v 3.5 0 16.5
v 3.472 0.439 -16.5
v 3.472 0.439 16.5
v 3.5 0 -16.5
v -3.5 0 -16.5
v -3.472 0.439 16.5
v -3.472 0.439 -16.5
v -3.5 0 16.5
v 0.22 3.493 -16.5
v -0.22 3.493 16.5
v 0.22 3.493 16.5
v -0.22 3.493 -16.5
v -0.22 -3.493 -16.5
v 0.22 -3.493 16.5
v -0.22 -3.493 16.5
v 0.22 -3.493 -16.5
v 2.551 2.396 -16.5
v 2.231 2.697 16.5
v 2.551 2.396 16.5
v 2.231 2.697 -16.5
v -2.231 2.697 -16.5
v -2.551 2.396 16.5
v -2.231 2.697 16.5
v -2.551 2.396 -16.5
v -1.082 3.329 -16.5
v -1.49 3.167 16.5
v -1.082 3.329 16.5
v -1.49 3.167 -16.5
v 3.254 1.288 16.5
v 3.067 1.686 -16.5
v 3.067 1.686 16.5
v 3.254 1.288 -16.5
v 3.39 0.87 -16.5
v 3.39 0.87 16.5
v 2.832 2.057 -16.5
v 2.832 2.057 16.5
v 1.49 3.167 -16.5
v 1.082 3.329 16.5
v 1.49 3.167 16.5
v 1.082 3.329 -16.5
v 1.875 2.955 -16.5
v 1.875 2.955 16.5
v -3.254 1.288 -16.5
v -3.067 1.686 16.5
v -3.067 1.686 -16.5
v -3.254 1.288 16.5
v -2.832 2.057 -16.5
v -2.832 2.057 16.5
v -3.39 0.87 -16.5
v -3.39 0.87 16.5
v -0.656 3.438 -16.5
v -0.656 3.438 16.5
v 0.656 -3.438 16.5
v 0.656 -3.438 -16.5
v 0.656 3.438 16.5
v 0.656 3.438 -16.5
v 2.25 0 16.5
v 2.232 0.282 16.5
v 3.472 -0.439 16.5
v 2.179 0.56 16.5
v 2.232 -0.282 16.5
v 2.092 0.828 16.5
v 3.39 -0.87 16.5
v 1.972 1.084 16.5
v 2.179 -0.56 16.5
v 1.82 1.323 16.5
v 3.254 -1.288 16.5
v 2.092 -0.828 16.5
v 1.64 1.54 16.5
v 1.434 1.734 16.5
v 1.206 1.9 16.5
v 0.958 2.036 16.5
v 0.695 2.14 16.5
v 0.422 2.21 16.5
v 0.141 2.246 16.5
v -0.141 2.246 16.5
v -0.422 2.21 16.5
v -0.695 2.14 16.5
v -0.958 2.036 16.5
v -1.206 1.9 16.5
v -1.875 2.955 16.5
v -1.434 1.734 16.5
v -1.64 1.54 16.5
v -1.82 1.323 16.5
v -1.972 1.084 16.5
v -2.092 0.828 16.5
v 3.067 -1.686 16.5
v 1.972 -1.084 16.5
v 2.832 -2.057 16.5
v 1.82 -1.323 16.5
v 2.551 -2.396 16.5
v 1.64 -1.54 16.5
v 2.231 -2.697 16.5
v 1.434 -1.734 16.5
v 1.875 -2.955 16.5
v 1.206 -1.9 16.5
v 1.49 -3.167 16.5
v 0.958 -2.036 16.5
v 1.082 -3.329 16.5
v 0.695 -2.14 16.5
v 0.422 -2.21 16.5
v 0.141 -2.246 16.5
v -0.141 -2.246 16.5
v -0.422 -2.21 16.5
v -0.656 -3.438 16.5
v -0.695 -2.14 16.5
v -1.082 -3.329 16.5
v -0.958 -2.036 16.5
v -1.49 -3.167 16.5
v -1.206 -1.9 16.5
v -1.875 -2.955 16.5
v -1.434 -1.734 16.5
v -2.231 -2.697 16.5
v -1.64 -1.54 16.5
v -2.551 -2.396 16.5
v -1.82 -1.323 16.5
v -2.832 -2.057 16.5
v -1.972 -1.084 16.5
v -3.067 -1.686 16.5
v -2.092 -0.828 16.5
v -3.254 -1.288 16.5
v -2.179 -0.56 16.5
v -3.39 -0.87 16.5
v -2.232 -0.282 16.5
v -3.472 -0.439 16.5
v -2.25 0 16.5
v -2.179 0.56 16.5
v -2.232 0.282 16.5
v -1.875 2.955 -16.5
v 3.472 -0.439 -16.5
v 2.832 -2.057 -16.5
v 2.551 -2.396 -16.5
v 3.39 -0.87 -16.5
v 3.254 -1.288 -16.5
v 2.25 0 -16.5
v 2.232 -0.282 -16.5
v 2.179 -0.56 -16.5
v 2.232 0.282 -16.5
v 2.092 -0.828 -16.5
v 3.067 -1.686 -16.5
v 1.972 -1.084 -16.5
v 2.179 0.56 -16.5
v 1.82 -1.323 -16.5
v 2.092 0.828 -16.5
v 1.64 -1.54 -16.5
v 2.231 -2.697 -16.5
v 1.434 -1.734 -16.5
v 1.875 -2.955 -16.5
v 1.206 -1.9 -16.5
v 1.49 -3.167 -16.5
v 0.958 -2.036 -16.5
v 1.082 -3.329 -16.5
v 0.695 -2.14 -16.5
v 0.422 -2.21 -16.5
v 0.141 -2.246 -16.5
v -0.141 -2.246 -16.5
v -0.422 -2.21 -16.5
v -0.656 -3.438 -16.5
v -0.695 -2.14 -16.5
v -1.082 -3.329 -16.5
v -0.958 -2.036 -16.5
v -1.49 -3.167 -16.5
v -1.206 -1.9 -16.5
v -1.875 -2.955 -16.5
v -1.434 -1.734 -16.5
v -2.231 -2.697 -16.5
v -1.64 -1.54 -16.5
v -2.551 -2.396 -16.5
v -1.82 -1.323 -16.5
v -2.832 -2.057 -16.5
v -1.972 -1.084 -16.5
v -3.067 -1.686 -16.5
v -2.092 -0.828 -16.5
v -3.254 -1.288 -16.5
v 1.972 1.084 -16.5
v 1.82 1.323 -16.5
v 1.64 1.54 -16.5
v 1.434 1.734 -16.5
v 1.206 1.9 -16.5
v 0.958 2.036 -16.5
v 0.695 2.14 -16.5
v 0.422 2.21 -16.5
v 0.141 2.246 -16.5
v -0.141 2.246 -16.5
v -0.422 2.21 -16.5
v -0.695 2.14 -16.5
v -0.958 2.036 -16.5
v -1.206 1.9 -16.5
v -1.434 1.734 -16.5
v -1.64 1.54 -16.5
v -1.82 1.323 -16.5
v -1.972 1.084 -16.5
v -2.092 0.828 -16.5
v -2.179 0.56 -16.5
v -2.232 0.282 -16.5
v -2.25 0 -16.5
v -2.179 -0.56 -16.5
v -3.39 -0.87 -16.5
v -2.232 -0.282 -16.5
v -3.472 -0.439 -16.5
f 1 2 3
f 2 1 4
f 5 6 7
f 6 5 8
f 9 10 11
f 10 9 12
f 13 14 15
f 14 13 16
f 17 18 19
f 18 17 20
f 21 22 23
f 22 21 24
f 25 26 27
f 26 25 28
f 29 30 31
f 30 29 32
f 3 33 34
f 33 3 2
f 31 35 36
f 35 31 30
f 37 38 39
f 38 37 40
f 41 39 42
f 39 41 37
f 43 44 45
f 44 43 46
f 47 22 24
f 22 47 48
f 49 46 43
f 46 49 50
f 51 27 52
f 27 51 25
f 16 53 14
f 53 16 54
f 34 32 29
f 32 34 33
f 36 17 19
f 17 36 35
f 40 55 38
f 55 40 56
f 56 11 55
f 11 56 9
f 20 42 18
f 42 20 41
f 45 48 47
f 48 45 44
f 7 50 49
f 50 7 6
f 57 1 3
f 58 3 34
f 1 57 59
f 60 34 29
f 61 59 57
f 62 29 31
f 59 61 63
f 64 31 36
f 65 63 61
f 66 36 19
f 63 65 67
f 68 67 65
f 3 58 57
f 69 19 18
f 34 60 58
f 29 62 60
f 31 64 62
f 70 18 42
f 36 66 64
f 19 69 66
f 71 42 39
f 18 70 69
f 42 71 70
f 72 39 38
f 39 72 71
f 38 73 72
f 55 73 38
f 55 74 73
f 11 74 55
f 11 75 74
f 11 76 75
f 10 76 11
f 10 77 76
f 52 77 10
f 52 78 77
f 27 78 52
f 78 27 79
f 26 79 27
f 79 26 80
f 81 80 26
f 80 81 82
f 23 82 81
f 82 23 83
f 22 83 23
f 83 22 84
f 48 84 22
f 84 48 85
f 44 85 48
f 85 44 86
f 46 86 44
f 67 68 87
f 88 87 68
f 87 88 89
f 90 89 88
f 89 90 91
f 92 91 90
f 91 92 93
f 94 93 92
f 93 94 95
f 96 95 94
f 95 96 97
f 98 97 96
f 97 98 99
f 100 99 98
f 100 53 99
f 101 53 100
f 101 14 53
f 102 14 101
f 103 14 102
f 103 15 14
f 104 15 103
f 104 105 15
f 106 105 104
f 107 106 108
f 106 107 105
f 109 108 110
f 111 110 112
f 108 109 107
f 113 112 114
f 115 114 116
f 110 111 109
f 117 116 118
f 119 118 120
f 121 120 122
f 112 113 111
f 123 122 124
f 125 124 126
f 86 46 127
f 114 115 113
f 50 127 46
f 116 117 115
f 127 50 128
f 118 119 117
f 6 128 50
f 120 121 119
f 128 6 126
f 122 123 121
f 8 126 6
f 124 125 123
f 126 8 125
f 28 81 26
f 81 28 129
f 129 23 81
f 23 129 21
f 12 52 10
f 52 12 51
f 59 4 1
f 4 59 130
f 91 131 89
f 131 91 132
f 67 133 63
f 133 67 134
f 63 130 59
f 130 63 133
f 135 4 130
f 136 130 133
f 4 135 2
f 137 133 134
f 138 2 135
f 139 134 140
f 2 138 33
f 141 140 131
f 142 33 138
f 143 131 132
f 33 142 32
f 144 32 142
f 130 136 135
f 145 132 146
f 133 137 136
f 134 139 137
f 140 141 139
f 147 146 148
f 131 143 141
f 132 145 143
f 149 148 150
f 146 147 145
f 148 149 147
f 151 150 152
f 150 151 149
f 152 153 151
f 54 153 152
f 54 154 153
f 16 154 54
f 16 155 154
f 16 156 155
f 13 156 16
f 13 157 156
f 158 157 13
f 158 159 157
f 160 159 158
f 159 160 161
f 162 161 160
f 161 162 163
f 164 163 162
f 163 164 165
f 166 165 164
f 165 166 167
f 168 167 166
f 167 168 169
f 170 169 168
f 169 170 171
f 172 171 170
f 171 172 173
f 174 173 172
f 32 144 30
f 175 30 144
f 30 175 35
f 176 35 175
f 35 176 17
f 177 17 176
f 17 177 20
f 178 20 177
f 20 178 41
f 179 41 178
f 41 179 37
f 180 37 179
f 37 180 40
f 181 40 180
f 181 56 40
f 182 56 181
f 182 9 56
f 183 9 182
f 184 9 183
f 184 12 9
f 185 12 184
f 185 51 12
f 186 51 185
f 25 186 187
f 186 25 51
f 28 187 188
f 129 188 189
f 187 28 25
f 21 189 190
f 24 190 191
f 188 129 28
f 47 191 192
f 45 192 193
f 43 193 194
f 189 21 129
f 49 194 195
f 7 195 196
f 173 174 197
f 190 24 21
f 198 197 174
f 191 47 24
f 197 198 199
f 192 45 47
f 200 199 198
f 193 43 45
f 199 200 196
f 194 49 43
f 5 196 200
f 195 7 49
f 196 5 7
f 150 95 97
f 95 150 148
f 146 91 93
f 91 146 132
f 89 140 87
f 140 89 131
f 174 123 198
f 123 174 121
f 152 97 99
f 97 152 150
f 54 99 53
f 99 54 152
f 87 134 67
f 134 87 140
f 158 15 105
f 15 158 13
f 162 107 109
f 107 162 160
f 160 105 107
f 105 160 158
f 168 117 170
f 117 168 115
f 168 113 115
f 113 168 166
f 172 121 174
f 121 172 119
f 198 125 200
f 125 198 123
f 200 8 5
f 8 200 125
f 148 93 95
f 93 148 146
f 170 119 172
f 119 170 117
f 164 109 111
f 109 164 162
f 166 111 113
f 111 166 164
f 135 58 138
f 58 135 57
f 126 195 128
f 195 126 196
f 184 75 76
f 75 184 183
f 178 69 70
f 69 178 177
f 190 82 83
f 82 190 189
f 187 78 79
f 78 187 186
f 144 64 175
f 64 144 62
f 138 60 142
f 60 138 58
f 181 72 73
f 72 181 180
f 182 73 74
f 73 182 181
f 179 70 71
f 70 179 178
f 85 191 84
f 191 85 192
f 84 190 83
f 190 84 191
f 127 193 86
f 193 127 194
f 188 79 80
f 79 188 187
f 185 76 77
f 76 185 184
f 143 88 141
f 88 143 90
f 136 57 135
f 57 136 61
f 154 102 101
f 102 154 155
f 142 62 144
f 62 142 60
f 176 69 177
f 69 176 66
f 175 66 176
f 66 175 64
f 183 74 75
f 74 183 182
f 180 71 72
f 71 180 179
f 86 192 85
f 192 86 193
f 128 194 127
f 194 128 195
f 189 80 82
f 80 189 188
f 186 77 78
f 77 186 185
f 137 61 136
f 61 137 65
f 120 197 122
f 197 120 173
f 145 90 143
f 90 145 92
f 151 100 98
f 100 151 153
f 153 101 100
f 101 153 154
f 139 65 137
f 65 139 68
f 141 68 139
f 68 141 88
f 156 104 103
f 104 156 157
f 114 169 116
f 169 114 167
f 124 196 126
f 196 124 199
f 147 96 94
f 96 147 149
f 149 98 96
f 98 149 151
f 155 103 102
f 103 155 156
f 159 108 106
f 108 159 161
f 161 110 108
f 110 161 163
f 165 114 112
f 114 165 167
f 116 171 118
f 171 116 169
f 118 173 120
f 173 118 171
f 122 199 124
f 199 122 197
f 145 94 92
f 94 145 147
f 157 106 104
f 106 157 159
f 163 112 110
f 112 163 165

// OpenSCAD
$fn = 50;


difference() {
	union() {
		translate(v = [0, 0, -16.5000000000]) {
			cylinder(h = 33, r = 3.5000000000);
		}
	}
	union() {
		translate(v = [0, 0, -100.0000000000]) {
			cylinder(h = 200, r = 2.2500000000);
		}
	}
}
